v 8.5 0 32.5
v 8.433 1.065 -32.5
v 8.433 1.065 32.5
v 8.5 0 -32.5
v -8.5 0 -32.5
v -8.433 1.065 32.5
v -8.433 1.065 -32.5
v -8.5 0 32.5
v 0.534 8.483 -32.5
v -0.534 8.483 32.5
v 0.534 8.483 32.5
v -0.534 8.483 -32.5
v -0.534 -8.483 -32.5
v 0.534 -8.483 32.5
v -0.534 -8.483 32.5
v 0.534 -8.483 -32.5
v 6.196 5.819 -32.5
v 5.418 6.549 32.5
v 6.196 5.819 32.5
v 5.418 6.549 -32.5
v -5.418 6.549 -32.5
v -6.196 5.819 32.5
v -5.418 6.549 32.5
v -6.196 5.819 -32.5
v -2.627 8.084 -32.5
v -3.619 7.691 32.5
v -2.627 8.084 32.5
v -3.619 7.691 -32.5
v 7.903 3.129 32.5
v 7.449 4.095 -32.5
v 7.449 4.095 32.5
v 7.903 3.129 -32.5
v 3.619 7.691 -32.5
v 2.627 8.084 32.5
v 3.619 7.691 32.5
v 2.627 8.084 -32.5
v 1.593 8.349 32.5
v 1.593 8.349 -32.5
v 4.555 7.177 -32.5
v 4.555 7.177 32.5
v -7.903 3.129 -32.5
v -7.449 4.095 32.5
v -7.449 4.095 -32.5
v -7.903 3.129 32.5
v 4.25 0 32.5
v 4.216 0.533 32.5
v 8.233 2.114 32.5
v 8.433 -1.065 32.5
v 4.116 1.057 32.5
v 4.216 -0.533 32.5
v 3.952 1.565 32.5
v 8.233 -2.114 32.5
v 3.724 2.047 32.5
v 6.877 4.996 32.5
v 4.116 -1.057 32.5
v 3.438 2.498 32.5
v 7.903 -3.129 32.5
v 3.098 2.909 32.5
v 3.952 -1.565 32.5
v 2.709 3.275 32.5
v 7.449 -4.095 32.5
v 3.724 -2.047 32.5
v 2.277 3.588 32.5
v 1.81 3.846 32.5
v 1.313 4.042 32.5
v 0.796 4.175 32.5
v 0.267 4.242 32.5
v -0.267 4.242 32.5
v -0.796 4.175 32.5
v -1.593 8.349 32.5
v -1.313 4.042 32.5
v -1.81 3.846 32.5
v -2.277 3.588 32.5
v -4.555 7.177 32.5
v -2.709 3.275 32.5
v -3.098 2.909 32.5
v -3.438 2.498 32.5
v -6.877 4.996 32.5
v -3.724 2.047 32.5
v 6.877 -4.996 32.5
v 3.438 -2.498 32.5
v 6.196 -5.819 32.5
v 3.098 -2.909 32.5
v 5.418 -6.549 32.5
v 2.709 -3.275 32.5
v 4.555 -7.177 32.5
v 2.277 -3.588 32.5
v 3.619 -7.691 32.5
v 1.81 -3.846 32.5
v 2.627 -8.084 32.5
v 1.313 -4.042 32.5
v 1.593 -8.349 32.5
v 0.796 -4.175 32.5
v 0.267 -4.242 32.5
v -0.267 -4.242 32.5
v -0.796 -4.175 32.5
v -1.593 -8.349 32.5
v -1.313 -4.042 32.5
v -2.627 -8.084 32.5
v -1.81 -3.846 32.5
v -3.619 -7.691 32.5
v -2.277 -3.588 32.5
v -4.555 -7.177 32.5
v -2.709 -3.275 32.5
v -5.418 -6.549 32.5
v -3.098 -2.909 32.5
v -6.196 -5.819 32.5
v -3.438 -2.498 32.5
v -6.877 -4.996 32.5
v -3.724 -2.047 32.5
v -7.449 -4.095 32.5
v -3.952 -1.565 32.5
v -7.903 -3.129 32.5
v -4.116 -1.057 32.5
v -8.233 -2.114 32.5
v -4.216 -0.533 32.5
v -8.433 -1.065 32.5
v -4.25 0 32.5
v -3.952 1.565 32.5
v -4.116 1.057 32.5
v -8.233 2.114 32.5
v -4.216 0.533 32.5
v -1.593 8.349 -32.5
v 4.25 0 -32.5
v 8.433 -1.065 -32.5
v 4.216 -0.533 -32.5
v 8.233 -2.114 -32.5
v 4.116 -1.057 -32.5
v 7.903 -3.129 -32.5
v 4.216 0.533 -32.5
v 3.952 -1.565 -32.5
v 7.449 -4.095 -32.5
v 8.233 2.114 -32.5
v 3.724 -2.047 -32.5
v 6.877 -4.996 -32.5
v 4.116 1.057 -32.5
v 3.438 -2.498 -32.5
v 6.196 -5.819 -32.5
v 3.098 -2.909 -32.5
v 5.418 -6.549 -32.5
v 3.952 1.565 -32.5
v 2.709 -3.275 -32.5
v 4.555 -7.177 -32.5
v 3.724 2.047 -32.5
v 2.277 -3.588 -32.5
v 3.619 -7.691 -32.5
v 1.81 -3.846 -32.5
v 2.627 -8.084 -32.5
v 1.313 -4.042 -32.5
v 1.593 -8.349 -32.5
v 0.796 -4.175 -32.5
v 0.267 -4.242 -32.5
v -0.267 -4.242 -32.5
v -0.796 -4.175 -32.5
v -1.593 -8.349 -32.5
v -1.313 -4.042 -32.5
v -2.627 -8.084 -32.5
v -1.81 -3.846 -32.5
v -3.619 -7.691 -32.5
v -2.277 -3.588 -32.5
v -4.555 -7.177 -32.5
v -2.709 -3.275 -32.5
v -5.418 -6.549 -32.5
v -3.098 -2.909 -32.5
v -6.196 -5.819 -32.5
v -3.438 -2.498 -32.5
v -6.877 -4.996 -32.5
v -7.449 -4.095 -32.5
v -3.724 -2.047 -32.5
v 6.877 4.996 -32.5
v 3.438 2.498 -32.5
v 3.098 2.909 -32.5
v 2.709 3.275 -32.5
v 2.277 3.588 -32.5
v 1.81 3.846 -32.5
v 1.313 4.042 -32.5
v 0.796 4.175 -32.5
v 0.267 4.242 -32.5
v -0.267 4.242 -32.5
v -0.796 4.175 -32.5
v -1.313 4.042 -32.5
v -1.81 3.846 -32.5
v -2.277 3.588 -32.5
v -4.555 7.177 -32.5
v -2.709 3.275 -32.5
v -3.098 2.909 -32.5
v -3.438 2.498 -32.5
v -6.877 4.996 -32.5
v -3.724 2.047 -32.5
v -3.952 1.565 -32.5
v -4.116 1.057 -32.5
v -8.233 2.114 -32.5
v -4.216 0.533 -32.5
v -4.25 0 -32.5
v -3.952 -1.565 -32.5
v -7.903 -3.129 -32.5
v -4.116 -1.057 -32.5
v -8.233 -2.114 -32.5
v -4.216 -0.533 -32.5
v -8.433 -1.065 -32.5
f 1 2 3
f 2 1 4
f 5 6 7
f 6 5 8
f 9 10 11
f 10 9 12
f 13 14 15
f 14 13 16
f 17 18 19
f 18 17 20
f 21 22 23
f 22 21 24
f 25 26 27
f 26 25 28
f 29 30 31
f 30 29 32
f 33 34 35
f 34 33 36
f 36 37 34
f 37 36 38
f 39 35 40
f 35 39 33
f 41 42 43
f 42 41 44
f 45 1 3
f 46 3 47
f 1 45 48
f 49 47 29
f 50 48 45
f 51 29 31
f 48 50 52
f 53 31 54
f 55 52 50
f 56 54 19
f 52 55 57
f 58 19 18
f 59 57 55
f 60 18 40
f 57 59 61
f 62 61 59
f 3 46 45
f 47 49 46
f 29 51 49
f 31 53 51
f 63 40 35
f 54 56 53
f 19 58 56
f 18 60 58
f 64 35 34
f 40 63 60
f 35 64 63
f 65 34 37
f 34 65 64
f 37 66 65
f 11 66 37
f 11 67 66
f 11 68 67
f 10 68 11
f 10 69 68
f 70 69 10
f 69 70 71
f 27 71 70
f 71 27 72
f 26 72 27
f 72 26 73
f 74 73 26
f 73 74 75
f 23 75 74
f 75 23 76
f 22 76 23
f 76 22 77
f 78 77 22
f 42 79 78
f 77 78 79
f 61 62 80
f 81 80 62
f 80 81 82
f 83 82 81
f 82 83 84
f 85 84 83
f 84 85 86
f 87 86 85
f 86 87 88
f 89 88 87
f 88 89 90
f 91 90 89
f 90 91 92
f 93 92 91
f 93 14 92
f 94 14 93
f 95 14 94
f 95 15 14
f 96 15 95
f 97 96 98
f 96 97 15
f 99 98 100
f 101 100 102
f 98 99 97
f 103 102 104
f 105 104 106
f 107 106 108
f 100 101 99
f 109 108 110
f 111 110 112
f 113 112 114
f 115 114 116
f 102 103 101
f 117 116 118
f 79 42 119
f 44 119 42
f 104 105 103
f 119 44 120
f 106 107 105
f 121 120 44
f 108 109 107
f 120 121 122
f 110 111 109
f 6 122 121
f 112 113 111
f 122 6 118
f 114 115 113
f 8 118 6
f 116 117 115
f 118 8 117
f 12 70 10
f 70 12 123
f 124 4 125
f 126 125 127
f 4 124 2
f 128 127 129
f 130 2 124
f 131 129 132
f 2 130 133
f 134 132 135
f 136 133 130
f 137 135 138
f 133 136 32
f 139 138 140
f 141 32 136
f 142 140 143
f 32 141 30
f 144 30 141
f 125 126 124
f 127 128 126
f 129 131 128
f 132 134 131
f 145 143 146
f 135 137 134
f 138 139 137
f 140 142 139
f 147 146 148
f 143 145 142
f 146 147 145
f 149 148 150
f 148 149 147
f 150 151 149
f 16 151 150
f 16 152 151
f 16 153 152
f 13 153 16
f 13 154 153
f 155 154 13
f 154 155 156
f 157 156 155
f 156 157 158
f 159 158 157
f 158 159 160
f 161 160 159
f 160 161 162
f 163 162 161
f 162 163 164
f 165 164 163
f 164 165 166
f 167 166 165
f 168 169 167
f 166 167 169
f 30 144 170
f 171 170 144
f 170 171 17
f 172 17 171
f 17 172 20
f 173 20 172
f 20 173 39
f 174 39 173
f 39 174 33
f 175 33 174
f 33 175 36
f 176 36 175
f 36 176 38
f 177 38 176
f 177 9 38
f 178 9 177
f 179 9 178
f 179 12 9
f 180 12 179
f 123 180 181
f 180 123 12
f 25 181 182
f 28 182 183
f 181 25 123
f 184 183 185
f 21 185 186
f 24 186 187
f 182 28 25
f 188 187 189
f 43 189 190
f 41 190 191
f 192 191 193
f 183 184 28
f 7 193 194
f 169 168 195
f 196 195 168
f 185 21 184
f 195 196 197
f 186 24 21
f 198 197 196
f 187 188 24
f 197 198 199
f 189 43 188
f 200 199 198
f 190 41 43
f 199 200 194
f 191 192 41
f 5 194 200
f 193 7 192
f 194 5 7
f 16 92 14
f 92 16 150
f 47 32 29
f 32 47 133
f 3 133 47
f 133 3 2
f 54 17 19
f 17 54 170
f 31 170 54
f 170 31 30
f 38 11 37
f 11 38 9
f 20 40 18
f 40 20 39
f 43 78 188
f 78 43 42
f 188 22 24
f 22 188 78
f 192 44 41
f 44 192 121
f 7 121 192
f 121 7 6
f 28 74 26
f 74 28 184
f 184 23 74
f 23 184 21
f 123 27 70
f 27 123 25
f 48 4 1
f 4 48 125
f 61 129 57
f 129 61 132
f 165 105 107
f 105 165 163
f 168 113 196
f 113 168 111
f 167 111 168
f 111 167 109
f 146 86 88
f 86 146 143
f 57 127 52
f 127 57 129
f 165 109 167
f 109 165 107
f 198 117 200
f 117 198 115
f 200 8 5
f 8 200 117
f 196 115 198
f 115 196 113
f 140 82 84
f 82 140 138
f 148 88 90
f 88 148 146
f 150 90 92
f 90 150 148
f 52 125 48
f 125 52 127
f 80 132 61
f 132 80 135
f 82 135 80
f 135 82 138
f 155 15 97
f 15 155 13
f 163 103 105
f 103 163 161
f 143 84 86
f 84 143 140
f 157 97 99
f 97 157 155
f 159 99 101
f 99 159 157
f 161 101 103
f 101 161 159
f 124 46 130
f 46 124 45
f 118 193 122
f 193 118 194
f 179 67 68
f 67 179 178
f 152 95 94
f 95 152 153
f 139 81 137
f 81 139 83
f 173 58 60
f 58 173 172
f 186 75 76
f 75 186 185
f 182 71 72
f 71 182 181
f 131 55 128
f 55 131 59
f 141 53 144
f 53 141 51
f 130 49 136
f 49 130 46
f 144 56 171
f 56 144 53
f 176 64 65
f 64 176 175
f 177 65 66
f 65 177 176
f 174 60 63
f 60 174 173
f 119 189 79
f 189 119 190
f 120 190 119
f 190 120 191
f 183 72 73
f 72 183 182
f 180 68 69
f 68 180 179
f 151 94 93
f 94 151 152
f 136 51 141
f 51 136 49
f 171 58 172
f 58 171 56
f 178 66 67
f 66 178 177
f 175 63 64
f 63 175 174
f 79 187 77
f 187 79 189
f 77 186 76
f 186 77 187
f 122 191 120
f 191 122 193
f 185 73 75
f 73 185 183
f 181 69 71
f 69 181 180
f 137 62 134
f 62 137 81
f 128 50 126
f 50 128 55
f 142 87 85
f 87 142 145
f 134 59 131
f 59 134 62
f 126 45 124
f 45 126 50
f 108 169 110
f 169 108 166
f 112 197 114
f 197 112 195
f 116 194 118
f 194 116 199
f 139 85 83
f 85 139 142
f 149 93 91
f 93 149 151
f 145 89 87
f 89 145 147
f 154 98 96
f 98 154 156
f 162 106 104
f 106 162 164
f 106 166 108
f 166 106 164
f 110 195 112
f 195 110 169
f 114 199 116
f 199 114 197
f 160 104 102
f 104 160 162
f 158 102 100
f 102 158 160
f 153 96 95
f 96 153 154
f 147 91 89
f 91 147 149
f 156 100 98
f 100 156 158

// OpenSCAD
$fn = 50;


difference() {
	union() {
		translate(v = [0, 0, -32.5000000000]) {
			cylinder(h = 65, r = 8.5000000000);
		}
	}
	union() {
		translate(v = [0, 0, -100.0000000000]) {
			cylinder(h = 200, r = 4.2500000000);
		}
	}
}
